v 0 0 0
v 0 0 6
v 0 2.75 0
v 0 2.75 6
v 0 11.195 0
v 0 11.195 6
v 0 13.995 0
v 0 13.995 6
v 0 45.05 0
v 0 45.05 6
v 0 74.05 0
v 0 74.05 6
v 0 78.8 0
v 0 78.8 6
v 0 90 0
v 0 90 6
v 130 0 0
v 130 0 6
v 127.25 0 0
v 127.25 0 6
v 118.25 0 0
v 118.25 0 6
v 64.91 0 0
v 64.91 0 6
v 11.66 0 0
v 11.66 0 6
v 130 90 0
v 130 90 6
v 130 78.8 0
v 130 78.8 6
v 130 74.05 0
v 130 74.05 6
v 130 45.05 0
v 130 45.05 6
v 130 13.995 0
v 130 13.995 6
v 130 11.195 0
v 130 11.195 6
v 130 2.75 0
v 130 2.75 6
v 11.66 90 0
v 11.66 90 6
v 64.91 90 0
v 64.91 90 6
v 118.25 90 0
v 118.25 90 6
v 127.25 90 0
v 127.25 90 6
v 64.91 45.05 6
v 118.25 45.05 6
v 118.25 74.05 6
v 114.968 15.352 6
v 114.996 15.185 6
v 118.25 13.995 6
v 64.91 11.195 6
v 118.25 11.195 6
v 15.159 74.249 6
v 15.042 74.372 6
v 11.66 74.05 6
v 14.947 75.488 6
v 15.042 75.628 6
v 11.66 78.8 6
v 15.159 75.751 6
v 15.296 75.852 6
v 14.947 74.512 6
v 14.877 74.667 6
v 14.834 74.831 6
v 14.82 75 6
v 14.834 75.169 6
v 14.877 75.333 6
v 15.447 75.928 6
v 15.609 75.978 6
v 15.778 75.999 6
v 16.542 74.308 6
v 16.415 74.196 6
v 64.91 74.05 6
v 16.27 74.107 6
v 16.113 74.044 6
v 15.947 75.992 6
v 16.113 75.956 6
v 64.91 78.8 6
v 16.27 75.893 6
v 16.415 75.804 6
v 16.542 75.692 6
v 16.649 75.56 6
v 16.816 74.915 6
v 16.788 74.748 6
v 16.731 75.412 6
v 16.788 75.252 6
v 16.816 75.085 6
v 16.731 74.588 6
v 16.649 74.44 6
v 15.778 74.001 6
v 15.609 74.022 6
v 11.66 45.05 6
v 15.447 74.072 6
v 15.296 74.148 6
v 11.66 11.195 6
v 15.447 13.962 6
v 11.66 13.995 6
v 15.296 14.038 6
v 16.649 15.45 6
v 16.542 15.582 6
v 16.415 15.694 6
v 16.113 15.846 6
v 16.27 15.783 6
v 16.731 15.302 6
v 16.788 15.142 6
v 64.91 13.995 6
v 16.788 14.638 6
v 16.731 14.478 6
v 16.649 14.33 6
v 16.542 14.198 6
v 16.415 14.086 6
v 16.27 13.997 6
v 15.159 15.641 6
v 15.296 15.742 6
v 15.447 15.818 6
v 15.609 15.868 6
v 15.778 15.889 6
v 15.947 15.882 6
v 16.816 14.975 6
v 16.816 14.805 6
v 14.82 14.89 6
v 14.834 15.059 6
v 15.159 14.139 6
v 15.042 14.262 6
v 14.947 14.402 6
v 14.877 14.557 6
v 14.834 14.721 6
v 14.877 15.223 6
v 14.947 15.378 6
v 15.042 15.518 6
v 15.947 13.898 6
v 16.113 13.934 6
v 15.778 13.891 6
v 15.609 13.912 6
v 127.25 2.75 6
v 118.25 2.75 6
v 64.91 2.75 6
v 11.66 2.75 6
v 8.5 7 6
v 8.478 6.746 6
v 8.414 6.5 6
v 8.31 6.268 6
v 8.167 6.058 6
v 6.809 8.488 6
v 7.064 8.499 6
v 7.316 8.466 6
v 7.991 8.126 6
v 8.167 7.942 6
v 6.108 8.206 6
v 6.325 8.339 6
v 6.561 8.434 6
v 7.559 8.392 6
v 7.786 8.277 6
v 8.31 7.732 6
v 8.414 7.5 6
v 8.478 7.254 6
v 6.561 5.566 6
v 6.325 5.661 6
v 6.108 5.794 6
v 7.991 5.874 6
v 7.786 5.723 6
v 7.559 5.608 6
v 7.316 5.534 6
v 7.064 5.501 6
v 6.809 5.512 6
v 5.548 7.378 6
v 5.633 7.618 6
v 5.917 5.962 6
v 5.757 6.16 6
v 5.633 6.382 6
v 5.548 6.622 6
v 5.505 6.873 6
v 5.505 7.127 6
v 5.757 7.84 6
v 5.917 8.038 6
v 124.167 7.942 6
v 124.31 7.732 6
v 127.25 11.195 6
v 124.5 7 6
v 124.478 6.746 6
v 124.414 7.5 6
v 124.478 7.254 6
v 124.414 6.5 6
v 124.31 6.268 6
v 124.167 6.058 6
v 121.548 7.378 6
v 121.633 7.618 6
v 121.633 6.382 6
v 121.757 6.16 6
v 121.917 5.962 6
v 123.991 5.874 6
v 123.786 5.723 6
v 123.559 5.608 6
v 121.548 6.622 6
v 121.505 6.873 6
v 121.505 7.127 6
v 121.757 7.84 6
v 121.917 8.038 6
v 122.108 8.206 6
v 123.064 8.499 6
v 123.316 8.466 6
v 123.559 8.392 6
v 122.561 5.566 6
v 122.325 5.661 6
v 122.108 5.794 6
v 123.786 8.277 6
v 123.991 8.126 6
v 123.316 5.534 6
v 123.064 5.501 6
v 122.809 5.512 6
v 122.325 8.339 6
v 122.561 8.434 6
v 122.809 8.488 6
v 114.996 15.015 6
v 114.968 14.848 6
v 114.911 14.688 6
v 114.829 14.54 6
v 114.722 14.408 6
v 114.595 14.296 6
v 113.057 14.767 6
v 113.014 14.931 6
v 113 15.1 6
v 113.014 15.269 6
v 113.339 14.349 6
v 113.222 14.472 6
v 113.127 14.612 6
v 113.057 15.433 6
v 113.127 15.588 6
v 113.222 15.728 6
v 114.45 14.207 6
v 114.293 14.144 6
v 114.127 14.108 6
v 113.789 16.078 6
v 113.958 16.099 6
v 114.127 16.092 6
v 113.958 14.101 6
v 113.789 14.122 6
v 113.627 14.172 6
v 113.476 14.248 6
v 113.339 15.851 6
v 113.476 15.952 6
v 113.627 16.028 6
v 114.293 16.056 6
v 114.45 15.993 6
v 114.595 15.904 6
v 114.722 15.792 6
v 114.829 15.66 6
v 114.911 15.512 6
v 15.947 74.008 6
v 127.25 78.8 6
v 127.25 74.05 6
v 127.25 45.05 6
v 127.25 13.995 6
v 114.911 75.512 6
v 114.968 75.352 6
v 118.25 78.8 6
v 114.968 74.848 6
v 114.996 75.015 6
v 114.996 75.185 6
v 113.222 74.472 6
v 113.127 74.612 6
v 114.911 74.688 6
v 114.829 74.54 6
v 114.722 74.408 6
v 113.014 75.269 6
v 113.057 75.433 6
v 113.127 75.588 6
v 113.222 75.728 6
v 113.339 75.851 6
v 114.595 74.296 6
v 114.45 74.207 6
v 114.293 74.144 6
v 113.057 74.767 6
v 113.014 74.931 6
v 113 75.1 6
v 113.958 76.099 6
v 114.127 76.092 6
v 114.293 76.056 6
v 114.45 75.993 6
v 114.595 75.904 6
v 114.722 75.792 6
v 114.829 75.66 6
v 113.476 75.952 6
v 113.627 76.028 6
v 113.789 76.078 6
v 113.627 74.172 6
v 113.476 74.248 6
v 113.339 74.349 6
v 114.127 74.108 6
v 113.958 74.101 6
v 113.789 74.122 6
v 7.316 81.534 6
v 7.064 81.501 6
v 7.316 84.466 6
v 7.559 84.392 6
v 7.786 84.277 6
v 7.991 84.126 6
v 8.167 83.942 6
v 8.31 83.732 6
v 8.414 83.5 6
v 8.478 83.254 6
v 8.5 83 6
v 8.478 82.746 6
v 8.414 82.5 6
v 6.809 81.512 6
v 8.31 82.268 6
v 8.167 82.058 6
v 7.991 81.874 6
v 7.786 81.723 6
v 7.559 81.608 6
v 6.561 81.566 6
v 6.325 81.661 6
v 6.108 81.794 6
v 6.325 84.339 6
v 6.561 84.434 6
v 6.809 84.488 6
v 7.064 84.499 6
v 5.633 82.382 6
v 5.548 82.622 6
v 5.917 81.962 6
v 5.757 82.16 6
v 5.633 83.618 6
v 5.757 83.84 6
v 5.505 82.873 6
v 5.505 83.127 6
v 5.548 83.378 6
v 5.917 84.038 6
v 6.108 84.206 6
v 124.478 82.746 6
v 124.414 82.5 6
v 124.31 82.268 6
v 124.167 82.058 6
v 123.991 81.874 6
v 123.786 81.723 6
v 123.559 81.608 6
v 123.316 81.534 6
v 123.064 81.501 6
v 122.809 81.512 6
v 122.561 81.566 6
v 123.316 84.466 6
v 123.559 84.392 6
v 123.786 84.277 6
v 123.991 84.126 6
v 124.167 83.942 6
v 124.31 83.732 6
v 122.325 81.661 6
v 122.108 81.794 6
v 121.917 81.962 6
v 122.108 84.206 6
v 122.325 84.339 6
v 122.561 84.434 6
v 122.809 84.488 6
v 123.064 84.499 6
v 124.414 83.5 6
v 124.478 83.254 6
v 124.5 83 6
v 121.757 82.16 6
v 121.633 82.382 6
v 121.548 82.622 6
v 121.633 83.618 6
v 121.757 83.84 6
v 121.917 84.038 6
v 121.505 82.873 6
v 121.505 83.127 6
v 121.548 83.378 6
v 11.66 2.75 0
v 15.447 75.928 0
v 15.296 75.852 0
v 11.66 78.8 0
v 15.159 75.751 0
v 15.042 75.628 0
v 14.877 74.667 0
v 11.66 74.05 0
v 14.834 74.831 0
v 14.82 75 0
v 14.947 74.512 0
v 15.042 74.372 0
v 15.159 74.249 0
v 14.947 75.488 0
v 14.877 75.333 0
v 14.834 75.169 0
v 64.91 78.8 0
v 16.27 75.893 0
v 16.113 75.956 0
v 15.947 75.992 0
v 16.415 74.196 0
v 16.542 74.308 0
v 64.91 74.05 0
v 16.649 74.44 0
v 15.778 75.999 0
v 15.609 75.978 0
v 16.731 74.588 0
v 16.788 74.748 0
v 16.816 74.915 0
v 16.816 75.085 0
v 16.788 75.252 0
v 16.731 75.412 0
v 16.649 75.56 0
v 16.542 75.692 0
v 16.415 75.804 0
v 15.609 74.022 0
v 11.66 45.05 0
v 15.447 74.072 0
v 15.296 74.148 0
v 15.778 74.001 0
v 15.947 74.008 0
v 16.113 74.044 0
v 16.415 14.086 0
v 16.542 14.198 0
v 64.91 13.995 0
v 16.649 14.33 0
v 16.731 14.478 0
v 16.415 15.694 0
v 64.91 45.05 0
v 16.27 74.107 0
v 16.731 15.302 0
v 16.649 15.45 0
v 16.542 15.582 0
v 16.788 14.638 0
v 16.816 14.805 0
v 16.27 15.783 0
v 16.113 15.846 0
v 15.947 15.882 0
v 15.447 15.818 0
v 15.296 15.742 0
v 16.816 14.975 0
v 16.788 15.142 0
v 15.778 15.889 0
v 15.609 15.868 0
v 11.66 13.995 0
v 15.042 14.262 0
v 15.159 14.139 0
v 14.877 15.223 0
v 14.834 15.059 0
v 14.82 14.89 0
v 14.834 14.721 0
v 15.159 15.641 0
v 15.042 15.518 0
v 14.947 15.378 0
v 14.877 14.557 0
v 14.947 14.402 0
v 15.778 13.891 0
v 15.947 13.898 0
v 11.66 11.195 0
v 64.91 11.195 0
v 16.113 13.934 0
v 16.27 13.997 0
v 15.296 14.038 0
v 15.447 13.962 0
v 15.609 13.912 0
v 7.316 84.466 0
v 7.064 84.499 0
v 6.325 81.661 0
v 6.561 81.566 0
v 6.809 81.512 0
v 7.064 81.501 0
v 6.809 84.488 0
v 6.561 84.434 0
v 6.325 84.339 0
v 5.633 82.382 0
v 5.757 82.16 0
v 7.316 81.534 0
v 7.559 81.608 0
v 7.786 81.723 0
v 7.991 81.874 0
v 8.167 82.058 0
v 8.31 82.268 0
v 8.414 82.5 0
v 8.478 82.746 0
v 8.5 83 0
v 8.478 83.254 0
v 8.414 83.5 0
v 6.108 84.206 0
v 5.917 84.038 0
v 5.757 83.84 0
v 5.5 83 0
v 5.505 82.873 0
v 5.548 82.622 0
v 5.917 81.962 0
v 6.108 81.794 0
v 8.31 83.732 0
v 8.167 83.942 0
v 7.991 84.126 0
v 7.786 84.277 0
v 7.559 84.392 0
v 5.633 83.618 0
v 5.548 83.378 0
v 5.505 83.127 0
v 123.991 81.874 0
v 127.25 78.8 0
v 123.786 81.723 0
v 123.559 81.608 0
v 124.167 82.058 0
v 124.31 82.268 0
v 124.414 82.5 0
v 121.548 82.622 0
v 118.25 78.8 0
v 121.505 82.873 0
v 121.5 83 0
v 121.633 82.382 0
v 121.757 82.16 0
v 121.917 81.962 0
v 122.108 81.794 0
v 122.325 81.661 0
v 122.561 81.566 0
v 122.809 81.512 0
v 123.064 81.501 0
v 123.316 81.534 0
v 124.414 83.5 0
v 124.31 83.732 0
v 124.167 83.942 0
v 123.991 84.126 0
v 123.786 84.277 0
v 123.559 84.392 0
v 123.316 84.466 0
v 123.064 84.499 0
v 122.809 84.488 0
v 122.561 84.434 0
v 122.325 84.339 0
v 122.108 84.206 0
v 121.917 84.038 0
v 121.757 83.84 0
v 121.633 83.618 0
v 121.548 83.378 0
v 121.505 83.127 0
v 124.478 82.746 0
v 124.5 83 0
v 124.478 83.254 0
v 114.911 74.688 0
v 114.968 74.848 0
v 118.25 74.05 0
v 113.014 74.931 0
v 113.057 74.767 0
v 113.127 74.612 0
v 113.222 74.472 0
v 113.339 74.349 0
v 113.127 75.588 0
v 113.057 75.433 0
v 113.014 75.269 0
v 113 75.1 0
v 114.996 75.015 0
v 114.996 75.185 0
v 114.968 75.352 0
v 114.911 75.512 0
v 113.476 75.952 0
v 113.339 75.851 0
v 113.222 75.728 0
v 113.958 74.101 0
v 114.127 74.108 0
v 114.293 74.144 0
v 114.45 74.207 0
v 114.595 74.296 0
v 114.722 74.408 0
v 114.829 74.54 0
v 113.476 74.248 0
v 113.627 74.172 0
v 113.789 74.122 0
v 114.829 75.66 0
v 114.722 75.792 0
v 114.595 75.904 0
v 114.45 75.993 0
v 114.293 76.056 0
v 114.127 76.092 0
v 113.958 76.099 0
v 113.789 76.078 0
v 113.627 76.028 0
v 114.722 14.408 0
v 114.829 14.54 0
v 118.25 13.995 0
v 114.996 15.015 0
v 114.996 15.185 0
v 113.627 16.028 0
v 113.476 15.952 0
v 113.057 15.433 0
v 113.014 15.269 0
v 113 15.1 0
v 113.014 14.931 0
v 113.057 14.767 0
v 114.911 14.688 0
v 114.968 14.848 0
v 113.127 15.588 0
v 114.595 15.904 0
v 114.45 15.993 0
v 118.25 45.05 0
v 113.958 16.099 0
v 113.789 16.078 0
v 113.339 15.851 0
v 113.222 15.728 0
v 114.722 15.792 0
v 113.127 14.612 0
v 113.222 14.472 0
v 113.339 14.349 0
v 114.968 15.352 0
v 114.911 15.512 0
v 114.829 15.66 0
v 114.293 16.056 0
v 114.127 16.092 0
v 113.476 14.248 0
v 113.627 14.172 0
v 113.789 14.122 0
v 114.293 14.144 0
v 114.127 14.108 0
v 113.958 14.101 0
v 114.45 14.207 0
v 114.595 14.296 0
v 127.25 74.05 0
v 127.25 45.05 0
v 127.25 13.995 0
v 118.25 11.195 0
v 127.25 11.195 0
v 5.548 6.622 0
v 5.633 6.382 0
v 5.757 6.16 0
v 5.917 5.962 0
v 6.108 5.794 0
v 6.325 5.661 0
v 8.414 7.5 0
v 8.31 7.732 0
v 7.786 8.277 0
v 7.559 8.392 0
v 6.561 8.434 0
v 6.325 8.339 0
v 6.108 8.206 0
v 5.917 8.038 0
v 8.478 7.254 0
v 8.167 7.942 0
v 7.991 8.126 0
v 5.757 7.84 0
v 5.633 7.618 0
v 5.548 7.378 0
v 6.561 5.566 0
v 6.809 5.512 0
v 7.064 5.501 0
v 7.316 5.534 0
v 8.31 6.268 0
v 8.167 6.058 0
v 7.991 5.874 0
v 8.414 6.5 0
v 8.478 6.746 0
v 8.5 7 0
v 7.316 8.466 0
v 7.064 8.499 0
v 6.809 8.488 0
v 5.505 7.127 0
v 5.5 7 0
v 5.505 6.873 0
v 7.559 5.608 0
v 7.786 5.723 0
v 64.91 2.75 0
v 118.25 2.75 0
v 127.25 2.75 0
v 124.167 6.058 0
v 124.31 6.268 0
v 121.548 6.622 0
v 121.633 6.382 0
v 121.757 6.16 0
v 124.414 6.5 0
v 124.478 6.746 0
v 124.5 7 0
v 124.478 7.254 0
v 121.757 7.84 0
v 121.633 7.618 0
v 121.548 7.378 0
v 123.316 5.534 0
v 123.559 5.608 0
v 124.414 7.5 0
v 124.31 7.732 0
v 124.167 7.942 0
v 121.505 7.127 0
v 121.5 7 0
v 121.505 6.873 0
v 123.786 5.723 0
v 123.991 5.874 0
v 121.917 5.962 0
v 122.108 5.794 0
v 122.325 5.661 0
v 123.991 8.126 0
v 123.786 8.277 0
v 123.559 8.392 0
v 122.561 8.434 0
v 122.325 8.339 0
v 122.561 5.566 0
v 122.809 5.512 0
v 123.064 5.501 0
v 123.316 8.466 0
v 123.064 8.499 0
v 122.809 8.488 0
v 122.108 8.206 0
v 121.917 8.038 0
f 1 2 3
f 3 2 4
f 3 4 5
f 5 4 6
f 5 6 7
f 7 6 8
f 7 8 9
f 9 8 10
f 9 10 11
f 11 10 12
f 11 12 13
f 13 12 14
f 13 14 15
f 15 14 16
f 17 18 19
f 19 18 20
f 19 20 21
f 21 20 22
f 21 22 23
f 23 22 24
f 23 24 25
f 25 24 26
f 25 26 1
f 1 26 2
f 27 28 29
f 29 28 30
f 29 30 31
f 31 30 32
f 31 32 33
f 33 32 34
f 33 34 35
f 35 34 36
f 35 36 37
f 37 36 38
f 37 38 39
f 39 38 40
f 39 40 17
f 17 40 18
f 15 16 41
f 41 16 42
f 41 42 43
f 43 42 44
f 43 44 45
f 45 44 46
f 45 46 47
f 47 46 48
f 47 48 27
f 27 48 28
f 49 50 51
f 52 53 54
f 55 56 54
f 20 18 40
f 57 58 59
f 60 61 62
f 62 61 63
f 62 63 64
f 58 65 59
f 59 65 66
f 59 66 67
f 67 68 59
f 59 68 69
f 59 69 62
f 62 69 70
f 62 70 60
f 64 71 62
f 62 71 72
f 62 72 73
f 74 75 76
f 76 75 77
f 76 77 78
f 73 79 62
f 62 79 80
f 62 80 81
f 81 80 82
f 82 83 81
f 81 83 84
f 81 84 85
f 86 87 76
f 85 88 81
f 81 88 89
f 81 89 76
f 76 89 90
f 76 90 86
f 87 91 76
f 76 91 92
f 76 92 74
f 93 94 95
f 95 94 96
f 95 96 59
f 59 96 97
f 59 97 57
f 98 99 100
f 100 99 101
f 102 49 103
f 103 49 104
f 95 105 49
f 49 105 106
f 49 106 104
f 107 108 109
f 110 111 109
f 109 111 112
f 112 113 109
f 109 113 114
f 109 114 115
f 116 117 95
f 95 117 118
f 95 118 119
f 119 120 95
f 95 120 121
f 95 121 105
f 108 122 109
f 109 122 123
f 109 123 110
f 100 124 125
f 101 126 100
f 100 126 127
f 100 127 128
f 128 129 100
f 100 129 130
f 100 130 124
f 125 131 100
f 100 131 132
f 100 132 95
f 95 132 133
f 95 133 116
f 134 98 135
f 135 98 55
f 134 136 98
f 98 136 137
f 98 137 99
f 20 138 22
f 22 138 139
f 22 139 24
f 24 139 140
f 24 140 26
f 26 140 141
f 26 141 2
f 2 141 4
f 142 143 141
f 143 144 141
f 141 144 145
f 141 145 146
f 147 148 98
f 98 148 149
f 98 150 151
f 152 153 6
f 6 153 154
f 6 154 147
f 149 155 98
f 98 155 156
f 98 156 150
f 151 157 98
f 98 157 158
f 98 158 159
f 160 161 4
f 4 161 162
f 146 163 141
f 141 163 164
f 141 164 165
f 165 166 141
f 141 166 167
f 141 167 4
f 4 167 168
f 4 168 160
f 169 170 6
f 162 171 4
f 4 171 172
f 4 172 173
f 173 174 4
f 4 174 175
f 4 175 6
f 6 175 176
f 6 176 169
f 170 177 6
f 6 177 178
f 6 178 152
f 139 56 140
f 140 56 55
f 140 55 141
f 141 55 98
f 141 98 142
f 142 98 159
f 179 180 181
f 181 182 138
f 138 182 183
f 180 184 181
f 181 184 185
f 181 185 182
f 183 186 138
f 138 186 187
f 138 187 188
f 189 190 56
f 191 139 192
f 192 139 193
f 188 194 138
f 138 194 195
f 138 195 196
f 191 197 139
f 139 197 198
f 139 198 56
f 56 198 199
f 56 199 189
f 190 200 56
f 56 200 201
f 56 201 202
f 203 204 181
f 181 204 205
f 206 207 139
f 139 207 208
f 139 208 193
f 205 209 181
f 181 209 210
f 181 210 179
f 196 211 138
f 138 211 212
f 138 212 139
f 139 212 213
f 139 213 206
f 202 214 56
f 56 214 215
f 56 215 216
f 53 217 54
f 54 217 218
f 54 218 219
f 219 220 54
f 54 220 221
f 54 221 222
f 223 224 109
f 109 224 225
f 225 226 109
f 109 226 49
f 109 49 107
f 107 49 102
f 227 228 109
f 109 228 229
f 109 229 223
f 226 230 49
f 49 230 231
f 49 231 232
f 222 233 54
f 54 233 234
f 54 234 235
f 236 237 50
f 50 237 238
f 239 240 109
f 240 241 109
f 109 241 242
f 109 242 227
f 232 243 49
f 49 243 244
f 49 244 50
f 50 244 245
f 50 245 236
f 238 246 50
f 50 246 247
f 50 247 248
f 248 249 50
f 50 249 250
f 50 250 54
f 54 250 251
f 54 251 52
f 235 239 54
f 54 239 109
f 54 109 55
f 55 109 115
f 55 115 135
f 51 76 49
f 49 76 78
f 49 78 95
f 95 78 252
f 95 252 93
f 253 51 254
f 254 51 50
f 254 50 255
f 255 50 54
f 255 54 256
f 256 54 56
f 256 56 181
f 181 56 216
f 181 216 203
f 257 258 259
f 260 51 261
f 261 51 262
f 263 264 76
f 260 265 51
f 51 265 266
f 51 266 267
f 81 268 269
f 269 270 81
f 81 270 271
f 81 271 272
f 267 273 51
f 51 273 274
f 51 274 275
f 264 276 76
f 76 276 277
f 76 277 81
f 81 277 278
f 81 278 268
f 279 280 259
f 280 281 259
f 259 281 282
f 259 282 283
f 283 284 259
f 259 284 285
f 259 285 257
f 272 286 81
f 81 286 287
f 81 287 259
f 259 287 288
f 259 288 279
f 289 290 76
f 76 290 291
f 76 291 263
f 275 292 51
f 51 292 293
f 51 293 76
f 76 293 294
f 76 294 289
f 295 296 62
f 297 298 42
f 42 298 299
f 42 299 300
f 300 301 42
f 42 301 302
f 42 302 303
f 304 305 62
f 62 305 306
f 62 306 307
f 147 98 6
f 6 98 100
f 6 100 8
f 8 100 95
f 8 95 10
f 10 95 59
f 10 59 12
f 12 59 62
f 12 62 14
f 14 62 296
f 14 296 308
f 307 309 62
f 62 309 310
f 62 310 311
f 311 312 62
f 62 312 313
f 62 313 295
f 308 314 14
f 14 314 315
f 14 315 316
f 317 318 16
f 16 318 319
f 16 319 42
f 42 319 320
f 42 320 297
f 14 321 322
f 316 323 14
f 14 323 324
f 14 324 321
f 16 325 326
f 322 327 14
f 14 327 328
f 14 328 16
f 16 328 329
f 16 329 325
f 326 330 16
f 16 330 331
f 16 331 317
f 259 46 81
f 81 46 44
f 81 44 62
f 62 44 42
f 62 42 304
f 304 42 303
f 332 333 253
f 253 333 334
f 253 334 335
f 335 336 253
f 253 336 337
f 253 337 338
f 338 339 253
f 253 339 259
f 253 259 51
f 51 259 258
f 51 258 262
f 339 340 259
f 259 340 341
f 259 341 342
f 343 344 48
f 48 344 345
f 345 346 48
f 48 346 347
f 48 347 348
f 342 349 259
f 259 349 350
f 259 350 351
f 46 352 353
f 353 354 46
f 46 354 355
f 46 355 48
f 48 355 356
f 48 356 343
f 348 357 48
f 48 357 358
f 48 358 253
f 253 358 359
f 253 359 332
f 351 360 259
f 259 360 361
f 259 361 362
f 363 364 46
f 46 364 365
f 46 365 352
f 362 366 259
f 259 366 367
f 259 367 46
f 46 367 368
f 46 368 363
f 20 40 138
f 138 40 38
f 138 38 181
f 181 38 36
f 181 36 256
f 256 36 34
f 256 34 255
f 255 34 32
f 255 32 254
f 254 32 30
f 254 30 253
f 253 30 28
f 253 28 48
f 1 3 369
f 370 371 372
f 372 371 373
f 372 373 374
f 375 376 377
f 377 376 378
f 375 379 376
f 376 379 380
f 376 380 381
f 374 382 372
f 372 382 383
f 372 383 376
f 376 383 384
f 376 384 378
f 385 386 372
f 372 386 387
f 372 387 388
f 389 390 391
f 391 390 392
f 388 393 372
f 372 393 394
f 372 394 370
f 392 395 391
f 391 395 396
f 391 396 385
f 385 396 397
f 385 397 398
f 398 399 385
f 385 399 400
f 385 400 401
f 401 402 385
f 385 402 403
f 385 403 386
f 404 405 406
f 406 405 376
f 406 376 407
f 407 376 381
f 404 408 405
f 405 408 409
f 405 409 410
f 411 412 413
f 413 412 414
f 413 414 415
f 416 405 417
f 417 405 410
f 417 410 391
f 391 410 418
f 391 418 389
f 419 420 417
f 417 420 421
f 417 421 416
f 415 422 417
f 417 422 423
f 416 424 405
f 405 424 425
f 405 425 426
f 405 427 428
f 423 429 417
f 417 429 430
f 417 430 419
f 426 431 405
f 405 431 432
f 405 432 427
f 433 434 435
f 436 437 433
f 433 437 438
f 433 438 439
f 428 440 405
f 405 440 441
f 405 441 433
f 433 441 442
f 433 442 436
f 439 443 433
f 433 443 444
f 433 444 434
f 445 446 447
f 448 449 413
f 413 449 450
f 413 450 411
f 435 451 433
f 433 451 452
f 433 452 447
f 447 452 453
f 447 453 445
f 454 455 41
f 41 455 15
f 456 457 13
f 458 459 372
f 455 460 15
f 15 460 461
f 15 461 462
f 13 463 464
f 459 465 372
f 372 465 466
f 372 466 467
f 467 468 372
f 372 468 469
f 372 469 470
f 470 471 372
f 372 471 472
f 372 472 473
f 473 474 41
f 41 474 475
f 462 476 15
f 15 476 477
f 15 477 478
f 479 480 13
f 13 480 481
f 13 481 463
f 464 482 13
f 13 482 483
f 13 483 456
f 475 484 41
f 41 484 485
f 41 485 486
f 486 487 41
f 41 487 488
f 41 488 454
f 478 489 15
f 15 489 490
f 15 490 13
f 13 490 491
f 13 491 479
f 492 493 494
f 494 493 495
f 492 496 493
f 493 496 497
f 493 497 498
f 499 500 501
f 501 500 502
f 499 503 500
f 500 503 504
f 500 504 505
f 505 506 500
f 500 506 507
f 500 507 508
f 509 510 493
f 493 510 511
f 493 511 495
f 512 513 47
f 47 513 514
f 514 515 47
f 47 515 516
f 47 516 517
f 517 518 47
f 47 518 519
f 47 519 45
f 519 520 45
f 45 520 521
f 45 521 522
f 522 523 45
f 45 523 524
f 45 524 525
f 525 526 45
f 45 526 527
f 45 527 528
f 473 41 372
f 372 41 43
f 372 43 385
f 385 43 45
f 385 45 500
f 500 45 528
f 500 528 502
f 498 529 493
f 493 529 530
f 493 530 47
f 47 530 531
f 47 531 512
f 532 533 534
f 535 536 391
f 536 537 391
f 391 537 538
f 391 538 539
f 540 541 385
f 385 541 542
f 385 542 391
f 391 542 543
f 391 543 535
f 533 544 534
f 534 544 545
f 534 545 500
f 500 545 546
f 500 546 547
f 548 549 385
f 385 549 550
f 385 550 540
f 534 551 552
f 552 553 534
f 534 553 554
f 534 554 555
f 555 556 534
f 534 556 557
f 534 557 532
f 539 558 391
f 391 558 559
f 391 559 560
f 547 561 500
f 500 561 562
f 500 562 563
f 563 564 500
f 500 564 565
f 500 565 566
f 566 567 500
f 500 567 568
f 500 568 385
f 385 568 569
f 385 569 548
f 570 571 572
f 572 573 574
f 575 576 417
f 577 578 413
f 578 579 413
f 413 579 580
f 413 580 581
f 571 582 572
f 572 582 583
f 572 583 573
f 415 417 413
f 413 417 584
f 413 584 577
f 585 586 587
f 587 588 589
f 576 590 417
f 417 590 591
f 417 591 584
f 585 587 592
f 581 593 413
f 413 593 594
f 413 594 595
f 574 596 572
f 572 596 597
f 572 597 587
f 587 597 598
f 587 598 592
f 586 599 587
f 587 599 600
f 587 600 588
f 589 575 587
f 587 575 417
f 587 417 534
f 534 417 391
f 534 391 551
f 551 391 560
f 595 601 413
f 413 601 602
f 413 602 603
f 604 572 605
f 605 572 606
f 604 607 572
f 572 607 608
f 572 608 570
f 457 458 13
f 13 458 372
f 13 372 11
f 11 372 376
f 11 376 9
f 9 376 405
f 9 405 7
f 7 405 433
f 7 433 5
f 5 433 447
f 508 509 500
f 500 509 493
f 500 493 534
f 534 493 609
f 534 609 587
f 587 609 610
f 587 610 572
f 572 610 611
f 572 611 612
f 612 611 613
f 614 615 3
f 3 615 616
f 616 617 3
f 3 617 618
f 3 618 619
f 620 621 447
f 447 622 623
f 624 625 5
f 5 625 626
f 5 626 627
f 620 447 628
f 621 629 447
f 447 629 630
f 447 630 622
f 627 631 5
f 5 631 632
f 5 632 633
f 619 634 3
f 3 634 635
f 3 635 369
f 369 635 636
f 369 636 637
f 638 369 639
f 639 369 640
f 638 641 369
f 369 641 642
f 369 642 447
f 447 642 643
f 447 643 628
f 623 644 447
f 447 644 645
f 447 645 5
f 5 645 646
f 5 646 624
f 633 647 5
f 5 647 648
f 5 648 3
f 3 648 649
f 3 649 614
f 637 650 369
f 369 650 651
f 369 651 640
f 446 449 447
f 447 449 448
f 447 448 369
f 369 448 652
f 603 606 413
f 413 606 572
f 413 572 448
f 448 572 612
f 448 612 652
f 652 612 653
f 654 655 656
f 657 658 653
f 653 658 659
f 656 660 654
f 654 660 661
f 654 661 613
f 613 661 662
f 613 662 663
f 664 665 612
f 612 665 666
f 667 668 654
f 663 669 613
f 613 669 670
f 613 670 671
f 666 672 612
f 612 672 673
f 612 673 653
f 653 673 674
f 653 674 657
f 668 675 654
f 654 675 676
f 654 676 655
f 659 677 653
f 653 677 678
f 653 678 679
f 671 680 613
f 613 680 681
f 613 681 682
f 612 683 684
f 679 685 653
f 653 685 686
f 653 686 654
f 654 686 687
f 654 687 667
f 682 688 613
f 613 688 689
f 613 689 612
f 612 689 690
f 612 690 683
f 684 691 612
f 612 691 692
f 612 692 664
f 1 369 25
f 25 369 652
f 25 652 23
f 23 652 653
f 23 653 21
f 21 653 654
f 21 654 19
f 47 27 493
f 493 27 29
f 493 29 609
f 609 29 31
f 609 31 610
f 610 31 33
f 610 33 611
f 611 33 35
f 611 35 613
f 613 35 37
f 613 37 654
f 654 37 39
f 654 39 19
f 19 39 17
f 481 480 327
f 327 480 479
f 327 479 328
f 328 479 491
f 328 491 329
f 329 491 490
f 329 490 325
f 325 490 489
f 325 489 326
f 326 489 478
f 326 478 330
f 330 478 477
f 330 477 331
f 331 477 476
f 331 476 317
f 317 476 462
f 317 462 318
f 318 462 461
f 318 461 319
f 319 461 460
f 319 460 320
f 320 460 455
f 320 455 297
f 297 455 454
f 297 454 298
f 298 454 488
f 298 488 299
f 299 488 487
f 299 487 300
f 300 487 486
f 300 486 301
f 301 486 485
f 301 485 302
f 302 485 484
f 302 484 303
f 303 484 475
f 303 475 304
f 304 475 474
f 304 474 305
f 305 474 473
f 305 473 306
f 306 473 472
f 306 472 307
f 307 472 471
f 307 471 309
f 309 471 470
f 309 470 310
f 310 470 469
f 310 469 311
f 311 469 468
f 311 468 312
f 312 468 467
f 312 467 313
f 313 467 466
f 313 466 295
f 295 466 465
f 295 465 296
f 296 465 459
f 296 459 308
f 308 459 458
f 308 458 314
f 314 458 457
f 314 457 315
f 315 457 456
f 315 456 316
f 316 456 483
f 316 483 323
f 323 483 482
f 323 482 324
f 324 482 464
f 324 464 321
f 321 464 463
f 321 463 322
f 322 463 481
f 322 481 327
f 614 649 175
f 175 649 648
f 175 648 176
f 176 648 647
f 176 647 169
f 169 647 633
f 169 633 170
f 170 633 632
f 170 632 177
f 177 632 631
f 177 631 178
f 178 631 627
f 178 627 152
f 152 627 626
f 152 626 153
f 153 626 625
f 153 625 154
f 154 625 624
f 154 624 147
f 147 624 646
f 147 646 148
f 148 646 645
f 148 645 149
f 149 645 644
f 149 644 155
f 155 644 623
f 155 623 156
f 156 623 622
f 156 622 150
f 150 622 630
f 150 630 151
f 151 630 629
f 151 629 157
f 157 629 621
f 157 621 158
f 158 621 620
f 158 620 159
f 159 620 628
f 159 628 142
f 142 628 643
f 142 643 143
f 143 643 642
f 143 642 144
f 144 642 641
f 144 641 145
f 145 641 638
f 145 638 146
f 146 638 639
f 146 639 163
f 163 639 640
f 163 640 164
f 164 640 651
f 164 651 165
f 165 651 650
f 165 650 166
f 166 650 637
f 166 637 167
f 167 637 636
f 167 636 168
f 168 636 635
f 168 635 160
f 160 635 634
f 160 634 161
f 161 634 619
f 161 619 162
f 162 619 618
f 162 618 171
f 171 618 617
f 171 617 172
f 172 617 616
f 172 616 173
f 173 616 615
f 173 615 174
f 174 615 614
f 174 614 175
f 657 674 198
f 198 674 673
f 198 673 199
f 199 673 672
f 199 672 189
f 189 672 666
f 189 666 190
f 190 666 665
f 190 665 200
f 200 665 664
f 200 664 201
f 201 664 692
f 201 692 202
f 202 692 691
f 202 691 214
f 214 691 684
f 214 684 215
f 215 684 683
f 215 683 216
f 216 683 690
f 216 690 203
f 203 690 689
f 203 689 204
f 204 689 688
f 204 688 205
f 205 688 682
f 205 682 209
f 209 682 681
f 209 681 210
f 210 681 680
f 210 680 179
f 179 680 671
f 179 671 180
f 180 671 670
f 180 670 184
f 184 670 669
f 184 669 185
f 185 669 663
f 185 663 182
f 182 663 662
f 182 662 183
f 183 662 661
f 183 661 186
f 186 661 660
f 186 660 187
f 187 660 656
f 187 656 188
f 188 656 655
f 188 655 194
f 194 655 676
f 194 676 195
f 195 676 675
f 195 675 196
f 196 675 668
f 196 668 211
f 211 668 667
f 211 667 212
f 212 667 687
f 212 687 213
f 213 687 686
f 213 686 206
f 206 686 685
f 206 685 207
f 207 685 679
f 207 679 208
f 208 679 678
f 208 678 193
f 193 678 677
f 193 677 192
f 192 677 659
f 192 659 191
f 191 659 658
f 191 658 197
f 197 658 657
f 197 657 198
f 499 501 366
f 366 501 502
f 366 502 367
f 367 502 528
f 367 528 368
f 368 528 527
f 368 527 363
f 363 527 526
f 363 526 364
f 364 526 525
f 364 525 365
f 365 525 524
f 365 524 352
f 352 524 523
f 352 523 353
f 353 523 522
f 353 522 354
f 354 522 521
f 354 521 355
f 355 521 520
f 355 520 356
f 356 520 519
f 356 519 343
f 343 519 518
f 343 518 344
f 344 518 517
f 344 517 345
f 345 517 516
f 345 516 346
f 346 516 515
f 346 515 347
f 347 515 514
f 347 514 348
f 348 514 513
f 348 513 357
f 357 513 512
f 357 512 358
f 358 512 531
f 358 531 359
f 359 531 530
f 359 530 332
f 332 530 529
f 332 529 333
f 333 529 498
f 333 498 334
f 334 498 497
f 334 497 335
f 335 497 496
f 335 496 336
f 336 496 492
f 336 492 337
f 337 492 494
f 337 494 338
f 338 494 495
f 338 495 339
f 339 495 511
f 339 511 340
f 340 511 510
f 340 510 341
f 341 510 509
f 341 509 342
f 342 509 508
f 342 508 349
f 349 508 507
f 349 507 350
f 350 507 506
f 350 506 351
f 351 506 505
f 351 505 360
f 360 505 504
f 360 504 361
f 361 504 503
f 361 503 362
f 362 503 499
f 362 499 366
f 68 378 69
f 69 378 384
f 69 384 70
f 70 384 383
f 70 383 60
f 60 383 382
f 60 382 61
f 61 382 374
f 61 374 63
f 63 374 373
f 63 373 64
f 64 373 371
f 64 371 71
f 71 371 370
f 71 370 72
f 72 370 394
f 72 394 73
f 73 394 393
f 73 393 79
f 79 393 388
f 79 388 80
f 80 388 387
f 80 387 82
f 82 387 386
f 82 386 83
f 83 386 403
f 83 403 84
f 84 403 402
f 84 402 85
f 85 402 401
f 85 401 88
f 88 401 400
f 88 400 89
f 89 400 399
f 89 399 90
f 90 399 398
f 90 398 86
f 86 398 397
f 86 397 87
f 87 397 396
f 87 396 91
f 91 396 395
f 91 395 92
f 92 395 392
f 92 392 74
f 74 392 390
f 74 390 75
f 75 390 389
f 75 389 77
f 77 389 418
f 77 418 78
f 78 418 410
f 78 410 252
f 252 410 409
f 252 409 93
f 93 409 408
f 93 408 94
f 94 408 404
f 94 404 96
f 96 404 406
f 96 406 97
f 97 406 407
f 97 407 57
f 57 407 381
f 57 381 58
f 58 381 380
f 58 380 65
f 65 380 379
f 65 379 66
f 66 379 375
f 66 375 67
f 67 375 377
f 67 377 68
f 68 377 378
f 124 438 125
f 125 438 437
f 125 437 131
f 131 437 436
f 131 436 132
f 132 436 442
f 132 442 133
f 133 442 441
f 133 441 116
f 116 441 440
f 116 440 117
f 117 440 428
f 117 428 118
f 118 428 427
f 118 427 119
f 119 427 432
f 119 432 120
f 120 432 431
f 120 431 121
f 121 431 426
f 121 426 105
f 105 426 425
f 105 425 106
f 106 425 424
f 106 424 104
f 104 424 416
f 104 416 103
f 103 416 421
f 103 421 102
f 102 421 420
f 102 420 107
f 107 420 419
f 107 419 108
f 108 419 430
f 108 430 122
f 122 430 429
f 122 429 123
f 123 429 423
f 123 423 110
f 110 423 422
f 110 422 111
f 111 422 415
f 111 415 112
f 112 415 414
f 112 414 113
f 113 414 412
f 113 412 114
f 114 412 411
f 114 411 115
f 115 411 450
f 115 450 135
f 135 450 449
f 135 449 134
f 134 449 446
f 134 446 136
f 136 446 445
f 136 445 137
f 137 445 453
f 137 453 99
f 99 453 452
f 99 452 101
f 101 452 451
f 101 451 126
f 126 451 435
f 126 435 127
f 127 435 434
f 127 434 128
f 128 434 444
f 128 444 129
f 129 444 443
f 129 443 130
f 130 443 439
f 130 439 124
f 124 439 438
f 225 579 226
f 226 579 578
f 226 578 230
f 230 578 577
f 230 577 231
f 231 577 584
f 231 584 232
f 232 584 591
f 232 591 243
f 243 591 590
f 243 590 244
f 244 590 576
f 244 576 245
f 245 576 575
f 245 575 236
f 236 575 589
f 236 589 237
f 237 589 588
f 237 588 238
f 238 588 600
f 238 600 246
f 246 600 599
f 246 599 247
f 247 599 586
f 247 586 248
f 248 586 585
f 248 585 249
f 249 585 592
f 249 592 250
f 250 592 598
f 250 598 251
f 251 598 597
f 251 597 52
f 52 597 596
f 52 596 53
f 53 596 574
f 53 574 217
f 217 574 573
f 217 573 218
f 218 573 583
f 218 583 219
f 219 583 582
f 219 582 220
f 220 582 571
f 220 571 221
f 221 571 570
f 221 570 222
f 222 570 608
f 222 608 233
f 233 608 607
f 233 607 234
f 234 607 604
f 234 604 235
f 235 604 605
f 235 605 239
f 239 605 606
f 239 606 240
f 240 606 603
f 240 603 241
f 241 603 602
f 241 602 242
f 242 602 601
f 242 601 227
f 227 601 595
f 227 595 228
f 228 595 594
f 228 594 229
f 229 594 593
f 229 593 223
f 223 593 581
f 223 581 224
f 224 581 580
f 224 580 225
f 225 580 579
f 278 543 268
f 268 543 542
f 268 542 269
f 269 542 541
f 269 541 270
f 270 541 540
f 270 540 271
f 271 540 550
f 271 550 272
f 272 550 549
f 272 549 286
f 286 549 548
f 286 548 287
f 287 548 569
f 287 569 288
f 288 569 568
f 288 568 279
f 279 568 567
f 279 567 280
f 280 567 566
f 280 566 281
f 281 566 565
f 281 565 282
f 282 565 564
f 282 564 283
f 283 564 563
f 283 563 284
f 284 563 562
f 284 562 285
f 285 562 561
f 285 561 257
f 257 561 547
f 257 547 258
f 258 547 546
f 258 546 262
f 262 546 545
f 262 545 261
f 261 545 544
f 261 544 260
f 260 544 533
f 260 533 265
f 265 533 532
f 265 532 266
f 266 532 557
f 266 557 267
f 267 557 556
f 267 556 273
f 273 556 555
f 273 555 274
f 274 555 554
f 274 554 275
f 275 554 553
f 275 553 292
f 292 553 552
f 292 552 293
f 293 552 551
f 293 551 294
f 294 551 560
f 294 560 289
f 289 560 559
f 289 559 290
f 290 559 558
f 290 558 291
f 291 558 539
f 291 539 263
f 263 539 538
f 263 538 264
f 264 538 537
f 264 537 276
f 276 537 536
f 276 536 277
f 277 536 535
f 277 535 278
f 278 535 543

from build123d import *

# Parameters (mm, degrees)
SKETCH1_W             = 130
SKETCH1_H             = 90
BOSS_EXTRUDE1_DEPTH   = 6
F_3_0MM_DOWEL_HOLE1_D = 3
F_2_0MM_DOWEL_HOLE1_D = 2


with BuildPart() as part:
    # Sketch1 → Boss-Extrude1 (new body)
    with BuildSketch(Plane.XY):
        with Locations((65, 45)):
            Rectangle(SKETCH1_W, SKETCH1_H)
    extrude(amount=BOSS_EXTRUDE1_DEPTH)

    # Ø3.0mm Dowel Hole1 (through all)
    with Locations(Plane.XY.offset(6)):
        with Locations((123, 83), (123, 7), (7, 7), (7, 83)):
            Hole(F_3_0MM_DOWEL_HOLE1_D / 2)

    # Ø2.0mm Dowel Hole1 (through all)
    with Locations(Plane(origin=(0, 0, 0), x_dir=(-1, 0, 0), z_dir=(0, 0, -1))):
        with Locations((-114, 75.1), (-114, 15.1), (-15.82, 14.89), (-15.82, 75)):
            Hole(F_2_0MM_DOWEL_HOLE1_D / 2)


solid = part.part
